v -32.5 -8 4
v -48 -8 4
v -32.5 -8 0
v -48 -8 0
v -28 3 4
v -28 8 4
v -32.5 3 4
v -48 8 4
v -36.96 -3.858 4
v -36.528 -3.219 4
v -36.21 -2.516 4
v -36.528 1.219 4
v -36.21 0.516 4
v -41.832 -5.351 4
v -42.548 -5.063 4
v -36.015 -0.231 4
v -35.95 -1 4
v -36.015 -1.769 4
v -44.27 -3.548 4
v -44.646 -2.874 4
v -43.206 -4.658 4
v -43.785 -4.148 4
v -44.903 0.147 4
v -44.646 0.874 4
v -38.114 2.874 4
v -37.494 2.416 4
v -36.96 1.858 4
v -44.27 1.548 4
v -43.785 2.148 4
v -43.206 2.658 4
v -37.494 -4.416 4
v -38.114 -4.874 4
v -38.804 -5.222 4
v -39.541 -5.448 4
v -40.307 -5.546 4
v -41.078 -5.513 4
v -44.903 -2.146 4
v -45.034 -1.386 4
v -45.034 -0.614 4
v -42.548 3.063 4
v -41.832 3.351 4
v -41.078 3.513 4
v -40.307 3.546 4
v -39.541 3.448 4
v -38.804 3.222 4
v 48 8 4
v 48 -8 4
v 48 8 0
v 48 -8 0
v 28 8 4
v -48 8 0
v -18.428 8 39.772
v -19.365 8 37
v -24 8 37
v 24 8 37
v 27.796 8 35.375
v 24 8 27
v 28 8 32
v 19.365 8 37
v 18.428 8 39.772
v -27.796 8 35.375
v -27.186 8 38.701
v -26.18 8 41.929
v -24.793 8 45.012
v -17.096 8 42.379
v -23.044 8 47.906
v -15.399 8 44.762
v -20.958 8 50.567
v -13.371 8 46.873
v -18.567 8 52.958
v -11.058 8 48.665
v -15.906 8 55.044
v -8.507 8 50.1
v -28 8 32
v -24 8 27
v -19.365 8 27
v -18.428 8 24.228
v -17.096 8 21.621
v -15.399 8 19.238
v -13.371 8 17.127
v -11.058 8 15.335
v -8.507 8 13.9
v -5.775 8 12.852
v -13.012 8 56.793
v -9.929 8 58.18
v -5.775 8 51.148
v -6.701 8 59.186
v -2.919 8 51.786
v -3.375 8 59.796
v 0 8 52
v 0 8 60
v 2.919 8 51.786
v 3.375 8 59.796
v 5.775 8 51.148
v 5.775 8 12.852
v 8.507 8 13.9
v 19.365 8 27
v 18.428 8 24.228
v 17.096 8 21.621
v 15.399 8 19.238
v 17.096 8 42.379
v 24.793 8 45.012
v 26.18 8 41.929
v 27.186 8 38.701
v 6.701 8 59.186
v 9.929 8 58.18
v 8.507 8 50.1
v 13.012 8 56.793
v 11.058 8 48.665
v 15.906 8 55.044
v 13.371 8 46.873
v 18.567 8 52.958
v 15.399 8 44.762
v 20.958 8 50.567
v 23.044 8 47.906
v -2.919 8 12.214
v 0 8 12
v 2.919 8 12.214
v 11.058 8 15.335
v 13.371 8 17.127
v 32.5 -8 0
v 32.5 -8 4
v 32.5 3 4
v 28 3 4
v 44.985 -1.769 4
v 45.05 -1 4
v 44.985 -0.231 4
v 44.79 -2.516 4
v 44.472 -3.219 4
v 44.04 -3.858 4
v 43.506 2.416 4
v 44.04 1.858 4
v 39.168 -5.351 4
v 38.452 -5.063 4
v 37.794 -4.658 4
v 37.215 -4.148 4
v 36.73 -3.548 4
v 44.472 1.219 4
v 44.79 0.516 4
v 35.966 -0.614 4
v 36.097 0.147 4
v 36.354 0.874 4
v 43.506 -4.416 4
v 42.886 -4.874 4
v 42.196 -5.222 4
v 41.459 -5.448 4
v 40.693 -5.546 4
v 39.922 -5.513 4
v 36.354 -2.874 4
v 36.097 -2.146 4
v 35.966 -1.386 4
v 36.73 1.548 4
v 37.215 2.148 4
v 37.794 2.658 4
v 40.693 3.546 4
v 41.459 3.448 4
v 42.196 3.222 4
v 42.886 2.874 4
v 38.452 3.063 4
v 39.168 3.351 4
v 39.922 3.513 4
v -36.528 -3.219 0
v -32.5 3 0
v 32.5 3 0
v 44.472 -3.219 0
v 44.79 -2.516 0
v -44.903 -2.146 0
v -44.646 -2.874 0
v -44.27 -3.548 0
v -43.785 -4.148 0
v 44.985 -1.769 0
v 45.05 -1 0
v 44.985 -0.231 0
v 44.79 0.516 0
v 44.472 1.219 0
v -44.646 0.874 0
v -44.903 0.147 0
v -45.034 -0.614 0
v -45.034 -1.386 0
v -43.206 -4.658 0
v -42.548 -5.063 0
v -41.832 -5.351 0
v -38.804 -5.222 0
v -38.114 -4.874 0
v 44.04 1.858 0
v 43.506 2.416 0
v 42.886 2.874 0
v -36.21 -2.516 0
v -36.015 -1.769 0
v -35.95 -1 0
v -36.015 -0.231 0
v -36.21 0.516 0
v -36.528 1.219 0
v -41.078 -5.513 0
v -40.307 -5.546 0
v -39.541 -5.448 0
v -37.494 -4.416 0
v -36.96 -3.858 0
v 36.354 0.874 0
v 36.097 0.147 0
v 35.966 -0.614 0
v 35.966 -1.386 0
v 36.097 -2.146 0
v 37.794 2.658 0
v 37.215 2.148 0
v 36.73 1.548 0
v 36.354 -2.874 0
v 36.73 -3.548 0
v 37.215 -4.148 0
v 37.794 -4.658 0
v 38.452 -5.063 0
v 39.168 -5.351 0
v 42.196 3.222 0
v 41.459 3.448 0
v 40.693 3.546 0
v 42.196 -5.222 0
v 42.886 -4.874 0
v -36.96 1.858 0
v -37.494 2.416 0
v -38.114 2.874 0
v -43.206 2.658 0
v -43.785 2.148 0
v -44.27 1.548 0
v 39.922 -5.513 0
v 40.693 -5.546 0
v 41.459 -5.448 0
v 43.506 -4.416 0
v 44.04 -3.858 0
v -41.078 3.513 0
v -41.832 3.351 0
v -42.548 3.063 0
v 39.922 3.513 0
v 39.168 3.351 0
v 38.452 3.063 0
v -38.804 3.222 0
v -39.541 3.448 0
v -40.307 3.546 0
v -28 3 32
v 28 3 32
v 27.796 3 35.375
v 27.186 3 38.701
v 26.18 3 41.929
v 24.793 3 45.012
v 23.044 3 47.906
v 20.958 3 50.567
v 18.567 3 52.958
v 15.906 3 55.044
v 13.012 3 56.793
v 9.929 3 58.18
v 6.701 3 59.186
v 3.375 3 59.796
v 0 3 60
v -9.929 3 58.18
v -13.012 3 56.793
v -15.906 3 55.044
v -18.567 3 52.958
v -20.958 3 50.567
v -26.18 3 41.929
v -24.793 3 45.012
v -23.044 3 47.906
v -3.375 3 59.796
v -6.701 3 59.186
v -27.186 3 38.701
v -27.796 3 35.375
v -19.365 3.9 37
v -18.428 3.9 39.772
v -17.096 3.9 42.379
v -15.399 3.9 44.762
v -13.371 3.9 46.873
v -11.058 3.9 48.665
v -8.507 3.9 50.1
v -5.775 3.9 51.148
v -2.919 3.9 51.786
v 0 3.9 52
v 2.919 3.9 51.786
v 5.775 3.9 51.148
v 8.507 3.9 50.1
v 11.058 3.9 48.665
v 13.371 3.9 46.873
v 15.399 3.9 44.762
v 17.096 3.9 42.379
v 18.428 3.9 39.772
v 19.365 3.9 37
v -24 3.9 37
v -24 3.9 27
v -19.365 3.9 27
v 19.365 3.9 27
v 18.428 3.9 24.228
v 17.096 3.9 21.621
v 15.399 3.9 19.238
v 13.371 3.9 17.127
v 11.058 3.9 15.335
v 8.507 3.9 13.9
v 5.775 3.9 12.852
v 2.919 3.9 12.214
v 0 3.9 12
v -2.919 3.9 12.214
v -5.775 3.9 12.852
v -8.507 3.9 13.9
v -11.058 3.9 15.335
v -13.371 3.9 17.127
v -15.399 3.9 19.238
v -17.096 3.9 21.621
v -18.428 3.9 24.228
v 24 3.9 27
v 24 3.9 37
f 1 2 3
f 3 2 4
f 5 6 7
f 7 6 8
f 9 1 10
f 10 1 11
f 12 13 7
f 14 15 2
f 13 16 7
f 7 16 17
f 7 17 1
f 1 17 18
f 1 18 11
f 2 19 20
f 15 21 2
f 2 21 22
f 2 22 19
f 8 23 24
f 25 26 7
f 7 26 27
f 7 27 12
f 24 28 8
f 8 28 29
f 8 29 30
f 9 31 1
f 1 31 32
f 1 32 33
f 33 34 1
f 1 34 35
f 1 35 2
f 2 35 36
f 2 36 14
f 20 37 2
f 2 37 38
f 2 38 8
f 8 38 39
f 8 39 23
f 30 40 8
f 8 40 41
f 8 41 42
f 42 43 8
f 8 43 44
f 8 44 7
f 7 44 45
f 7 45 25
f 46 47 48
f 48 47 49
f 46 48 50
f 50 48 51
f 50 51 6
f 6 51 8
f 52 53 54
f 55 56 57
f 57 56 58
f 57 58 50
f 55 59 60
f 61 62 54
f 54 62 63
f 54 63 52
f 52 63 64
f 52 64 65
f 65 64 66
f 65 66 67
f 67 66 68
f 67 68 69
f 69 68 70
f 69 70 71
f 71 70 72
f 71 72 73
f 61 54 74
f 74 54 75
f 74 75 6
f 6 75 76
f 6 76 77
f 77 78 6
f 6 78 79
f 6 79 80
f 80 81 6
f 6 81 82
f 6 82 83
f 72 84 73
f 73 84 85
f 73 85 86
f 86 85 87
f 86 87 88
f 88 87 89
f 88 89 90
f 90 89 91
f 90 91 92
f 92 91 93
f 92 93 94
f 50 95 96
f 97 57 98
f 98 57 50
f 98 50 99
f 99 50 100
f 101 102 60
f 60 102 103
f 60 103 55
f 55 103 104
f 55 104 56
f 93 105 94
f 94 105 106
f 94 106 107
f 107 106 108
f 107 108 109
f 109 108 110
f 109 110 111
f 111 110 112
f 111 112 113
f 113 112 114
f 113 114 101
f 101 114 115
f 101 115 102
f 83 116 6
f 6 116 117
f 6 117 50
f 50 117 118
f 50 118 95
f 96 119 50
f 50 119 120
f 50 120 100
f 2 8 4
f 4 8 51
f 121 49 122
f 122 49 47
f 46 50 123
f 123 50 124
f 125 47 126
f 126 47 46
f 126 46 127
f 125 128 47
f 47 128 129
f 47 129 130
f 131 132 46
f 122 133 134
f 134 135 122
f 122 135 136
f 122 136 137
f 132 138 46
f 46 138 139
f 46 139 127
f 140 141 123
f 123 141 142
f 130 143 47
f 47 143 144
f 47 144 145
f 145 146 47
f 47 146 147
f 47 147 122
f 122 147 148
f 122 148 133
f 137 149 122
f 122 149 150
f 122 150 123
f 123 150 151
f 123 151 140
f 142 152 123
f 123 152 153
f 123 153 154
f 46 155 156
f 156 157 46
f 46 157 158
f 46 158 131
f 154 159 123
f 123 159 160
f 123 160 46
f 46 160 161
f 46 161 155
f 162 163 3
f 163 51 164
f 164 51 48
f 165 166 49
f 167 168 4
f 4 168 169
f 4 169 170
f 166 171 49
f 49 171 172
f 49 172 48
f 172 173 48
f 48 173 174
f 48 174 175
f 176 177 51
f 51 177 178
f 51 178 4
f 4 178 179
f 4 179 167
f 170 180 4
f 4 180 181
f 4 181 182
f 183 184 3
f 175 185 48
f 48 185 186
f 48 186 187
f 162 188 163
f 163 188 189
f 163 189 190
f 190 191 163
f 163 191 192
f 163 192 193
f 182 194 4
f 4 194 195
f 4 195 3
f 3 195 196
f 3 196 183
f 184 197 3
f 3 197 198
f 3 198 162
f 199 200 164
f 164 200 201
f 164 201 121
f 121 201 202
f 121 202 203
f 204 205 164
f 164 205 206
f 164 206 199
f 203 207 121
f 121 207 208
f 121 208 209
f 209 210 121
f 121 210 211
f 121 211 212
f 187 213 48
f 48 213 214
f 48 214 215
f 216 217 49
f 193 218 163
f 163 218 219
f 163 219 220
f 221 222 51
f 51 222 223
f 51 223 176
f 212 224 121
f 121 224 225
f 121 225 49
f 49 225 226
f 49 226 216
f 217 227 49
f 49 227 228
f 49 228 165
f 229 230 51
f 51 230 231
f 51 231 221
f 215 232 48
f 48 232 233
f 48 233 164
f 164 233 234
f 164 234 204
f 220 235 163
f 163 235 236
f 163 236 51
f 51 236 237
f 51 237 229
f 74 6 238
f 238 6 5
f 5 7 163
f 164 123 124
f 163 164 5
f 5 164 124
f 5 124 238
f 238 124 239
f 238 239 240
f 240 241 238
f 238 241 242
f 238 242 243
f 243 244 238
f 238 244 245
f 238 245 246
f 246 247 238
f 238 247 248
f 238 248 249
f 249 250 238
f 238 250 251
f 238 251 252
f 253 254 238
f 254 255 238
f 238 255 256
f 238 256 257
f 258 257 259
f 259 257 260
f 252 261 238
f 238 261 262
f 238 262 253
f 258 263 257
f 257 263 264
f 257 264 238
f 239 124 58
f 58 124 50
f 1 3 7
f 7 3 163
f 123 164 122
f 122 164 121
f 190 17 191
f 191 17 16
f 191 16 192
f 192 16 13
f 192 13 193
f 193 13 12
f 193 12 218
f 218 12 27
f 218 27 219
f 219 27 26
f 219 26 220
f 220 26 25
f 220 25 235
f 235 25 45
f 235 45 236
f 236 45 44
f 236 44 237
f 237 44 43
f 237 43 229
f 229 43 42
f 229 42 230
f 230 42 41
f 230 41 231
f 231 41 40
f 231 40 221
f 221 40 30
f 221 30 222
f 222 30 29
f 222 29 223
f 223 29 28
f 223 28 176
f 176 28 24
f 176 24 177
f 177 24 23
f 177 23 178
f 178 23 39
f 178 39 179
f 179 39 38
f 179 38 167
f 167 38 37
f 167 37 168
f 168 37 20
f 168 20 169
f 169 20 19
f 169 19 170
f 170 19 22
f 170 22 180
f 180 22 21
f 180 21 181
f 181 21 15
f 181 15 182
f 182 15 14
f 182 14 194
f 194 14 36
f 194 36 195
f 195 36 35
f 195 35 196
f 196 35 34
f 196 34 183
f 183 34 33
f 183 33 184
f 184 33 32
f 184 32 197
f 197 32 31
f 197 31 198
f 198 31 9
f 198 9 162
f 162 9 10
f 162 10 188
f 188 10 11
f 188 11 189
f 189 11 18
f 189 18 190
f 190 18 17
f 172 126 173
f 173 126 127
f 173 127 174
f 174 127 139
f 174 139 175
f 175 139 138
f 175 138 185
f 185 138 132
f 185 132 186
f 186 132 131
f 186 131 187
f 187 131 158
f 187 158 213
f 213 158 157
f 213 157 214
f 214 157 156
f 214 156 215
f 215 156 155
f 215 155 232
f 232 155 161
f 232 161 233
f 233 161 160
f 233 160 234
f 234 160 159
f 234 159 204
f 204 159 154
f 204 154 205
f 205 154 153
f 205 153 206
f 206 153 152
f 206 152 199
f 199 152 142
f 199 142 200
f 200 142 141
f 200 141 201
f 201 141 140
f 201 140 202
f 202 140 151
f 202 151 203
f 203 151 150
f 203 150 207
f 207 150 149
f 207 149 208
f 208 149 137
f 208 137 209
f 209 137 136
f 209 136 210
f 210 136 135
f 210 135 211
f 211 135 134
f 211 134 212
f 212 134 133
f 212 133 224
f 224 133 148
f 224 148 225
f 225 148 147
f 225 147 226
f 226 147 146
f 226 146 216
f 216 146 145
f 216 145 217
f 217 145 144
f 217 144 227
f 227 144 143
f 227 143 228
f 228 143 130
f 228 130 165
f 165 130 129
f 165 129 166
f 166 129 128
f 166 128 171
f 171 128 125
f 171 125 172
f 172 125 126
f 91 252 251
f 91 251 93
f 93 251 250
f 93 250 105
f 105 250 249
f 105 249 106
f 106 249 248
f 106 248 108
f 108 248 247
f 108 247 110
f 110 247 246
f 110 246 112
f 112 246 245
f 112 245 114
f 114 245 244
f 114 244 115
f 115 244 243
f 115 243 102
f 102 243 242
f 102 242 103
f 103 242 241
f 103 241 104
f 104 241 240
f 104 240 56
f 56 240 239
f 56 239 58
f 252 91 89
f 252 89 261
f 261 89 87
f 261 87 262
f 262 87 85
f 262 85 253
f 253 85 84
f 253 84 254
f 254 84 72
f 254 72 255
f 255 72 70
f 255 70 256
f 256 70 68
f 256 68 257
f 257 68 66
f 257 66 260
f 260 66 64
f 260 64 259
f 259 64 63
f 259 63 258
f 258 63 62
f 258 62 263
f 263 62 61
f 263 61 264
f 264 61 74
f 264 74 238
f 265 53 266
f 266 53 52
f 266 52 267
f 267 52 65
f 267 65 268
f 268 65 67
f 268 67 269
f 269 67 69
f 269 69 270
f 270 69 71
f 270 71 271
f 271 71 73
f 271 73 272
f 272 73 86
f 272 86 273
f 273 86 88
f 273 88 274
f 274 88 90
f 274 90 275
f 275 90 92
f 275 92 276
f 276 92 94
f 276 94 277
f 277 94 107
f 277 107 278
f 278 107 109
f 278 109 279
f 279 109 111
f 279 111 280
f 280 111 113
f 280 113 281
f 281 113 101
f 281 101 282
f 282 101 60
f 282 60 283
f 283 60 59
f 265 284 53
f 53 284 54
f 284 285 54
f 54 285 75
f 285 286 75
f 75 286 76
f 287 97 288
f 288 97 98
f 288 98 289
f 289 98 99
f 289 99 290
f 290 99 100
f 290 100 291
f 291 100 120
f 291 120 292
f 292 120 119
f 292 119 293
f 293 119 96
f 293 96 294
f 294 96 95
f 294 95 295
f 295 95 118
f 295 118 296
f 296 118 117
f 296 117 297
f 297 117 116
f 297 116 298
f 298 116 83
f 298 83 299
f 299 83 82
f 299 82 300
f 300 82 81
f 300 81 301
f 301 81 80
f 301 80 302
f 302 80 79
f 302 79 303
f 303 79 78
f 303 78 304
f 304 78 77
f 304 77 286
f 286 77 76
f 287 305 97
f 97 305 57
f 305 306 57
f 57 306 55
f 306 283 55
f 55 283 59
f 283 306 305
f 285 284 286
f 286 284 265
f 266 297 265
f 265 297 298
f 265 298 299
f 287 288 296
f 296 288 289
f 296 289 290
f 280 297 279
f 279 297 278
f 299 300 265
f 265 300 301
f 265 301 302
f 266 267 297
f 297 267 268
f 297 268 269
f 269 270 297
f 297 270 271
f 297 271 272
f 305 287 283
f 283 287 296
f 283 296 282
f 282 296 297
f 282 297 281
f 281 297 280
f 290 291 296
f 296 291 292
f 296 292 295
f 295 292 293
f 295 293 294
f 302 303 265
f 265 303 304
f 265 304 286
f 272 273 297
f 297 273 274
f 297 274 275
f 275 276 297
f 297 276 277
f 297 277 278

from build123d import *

# Parameters (mm, degrees)
SKETCH_1_W          = 96
SKETCH_1_H          = 16
EXTRUDE_1_DEPTH     = 4
SKETCH_2_W          = 56
SKETCH_2_H          = 5
EXTRUDE_2_DEPTH     = 56
SKETCH_3_W          = 65
SKETCH_3_H          = 11
CUT_EXTRUDE_1_DEPTH = 50
SKETCH_4_R          = 4.55
CUT_EXTRUDE_2_DEPTH = 75.188947964
FILLET_1_R          = 28
CUT_EXTRUDE_3_DEPTH = 4.1


with BuildPart() as part:
    # 스케치1 → 보스-돌출1 (new body)
    with BuildSketch(Plane.XY):
        Rectangle(SKETCH_1_W, SKETCH_1_H)
    extrude(amount=EXTRUDE_1_DEPTH)

    # 스케치2 → 보스-돌출2 (add)
    with BuildSketch(Plane.XY.offset(4)):
        with Locations((0, 5.5)):
            Rectangle(SKETCH_2_W, SKETCH_2_H)
    extrude(amount=EXTRUDE_2_DEPTH)

    # 스케치3 → 컷-돌출1 (cut)
    with BuildSketch(Plane.XY.offset(4)):
        with Locations((0, -2.5)):
            Rectangle(SKETCH_3_W, SKETCH_3_H)
    extrude(amount=-CUT_EXTRUDE_1_DEPTH, mode=Mode.SUBTRACT)

    # 스케치4 → 컷-돌출2 (cut, through all)
    with BuildSketch(Plane.XY.offset(4)):
        with Locations((40.5, -1)):
            Circle(SKETCH_4_R)
        with Locations((-40.5, -1)):
            Circle(SKETCH_4_R)
    extrude(amount=-CUT_EXTRUDE_2_DEPTH, mode=Mode.SUBTRACT)

    # 필렛1
    fillet_1_edges = [part.edges().sort_by_distance(p)[0] for p in [
        (-28, 5.5, 60),
        (28, 5.5, 60),
    ]]
    fillet(fillet_1_edges, radius=FILLET_1_R - 0.0001)  # a hair under: the kernel refuses the full size

    # 스케치5 → 컷-돌출3 (cut)
    with BuildSketch(Plane(origin=(0, 8, 0), x_dir=(1, 0, 0), z_dir=(0, 1, 0))):
        with BuildLine():
            Line((-19.364916731, -27), (-16, -27))
            Line((-16, -27), (-16, -37))
            Line((-16, -37), (-19.364916731, -37))
            ThreePointArc((-19.364916731, -37), (0, -52), (19.364916731, -37))
            Line((19.364916731, -37), (16, -37))
            Line((16, -37), (16, -27))
            Line((16, -27), (19.364916731, -27))
            ThreePointArc((19.364916731, -27), (0, -12), (-19.364916731, -27))
        make_face()
        with BuildLine():
            ThreePointArc((20, -32), (19.840593925, -29.47991415), (19.364916731, -27))
            Line((19.364916731, -27), (16, -27))
            Line((16, -27), (16, -37))
            Line((16, -37), (19.364916731, -37))
            ThreePointArc((19.364916731, -37), (19.840593925, -34.52008585), (20, -32))
        make_face()
        with BuildLine():
            Line((24, -27), (19.364916731, -27))
            ThreePointArc((19.364916731, -27), (19.840593925, -29.47991415), (20, -32))
            ThreePointArc((20, -32), (19.840593925, -34.52008585), (19.364916731, -37))
            Line((19.364916731, -37), (24, -37))
            Line((24, -37), (24, -27))
        make_face()
        with BuildLine():
            Line((-16, -37), (-16, -27))
            Line((-16, -27), (-19.364916731, -27))
            ThreePointArc((-19.364916731, -27), (-20, -32), (-19.364916731, -37))
            Line((-19.364916731, -37), (-16, -37))
        make_face()
        with BuildLine():
            ThreePointArc((-19.364916731, -37), (-20, -32), (-19.364916731, -27))
            Line((-19.364916731, -27), (-24, -27))
            Line((-24, -27), (-24, -37))
            Line((-24, -37), (-19.364916731, -37))
        make_face()
    extrude(amount=-CUT_EXTRUDE_3_DEPTH, mode=Mode.SUBTRACT)


solid = part.part
